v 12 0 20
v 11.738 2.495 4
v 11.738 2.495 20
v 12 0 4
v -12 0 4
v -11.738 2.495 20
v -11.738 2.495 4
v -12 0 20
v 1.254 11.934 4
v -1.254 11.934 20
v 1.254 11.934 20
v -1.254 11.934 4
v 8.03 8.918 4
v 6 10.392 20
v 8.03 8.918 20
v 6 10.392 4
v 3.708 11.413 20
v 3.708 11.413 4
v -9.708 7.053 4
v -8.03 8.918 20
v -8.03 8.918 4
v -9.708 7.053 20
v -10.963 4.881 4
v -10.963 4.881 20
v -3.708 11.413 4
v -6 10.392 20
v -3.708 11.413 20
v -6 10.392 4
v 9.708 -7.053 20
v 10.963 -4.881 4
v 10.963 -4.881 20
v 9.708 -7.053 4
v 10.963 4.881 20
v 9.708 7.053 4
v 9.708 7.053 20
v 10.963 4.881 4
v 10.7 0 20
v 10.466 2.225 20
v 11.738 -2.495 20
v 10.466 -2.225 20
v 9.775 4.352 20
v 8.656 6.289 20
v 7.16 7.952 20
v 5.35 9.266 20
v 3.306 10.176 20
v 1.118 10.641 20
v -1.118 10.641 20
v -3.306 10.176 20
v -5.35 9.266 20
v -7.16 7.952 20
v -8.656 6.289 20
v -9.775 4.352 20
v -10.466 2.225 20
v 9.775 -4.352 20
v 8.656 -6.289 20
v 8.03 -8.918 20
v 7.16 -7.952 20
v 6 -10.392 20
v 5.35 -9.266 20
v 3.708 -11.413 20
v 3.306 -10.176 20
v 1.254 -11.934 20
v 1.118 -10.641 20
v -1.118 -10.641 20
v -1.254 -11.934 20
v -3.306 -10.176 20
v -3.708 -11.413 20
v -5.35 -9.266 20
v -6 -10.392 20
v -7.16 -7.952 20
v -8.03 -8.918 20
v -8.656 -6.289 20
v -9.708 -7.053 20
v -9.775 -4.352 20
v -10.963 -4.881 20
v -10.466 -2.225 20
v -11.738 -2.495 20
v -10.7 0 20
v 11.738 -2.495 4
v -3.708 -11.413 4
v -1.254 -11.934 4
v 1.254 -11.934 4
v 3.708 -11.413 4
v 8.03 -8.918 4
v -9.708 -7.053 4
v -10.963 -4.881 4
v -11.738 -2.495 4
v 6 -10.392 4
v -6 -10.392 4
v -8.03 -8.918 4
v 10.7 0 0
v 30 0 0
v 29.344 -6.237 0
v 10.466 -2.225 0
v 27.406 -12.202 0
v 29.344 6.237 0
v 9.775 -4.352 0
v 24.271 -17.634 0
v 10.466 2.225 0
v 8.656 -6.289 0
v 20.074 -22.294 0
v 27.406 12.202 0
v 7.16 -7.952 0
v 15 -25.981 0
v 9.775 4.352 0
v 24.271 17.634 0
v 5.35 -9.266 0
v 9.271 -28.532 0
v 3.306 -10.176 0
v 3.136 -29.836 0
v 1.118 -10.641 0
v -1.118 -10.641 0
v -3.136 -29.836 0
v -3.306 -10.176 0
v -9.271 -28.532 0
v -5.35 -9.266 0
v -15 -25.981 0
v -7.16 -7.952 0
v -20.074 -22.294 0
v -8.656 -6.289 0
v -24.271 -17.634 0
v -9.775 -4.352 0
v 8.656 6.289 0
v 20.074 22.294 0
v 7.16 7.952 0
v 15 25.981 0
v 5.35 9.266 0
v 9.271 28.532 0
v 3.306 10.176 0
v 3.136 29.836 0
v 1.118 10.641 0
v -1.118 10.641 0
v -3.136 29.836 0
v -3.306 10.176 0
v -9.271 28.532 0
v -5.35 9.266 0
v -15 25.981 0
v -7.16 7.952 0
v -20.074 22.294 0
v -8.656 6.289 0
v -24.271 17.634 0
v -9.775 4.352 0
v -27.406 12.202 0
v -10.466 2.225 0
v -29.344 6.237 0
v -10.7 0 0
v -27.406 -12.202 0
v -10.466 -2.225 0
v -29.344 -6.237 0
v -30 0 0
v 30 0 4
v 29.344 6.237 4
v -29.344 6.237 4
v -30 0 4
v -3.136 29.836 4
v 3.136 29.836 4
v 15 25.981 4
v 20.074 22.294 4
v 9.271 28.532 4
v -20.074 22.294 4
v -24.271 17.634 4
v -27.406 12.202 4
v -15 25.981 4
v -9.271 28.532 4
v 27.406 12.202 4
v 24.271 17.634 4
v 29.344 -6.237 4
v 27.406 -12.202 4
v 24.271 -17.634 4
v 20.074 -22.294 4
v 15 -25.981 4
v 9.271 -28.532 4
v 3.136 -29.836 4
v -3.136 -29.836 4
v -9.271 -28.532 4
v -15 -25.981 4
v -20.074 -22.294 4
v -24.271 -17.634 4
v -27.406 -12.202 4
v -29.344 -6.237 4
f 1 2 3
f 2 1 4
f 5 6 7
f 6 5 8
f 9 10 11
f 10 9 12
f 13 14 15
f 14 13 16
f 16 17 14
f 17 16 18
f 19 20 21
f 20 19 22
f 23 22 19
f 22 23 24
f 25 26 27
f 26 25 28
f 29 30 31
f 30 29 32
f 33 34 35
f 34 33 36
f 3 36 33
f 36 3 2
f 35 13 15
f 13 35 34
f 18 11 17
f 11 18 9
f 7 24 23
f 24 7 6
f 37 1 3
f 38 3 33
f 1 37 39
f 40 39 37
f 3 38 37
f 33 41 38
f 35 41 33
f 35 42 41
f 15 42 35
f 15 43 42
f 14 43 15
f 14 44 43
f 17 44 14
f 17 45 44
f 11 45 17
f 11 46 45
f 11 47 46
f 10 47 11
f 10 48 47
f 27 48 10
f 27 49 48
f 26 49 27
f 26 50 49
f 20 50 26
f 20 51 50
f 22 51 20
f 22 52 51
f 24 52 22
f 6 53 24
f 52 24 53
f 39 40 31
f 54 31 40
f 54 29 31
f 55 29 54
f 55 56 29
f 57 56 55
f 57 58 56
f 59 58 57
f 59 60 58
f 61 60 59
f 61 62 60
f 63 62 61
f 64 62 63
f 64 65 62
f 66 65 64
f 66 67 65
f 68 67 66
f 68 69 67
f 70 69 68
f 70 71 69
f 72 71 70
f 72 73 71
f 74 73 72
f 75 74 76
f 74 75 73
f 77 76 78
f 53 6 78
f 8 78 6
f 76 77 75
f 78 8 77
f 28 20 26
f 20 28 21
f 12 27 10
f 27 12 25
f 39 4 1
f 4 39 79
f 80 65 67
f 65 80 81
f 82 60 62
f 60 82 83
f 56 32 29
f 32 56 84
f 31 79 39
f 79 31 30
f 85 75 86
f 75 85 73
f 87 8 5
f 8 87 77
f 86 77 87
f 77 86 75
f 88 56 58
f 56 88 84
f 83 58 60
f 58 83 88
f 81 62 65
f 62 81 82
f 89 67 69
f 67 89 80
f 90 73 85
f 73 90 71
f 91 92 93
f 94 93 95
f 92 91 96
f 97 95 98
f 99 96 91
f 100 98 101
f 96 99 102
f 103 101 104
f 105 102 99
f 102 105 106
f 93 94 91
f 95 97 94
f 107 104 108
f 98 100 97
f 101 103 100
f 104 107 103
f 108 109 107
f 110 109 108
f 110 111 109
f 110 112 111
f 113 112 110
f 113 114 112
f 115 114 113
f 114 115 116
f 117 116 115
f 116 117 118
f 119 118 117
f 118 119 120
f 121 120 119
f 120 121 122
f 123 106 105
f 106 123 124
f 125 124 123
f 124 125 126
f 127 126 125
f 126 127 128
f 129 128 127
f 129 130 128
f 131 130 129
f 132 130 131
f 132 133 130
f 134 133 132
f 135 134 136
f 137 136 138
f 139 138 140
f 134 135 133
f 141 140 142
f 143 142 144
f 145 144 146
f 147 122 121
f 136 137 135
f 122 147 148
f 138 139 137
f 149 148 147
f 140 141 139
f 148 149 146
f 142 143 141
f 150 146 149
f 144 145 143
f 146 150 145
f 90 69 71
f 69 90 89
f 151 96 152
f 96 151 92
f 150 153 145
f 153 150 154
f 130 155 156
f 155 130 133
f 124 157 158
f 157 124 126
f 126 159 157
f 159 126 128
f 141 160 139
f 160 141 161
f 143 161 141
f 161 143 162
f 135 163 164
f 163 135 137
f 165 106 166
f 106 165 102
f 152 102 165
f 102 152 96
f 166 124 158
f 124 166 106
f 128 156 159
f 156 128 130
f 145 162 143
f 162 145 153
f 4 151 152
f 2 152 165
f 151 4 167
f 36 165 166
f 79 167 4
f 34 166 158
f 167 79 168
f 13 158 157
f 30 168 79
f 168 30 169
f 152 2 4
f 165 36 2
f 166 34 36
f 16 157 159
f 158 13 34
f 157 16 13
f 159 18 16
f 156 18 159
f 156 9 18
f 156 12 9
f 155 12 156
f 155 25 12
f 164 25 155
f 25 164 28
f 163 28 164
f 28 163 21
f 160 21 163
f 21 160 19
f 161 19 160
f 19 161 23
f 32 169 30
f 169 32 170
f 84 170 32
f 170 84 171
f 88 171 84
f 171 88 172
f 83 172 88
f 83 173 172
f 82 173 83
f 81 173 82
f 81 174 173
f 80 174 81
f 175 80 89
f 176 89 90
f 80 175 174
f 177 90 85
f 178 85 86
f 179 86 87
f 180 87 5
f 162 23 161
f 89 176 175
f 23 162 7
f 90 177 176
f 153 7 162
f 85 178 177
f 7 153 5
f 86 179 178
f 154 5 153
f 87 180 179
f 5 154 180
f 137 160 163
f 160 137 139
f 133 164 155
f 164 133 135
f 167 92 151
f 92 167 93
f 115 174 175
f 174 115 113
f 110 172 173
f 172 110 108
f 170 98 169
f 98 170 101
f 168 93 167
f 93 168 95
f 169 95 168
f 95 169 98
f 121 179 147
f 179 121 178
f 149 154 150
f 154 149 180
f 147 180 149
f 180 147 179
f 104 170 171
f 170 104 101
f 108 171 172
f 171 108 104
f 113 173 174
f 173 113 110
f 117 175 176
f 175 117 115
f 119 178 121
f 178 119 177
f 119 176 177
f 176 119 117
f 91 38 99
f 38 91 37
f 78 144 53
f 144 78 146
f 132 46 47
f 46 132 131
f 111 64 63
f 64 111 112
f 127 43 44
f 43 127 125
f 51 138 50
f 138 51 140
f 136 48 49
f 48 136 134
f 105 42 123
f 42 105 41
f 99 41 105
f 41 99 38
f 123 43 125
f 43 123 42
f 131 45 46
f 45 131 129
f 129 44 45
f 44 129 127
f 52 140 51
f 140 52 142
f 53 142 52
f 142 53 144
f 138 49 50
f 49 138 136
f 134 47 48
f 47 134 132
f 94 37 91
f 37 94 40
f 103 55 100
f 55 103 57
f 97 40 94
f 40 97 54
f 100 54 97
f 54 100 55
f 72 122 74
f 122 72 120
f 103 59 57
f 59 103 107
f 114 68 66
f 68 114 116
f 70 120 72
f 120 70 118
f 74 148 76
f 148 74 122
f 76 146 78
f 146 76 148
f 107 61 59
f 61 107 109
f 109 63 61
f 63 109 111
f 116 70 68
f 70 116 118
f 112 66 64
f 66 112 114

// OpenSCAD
difference(){
    base();
    cylinder(50, 10.7, 10.7);
}

module base(){

    cylinder(20,12,12);
    cylinder(4, 30,30);
}
